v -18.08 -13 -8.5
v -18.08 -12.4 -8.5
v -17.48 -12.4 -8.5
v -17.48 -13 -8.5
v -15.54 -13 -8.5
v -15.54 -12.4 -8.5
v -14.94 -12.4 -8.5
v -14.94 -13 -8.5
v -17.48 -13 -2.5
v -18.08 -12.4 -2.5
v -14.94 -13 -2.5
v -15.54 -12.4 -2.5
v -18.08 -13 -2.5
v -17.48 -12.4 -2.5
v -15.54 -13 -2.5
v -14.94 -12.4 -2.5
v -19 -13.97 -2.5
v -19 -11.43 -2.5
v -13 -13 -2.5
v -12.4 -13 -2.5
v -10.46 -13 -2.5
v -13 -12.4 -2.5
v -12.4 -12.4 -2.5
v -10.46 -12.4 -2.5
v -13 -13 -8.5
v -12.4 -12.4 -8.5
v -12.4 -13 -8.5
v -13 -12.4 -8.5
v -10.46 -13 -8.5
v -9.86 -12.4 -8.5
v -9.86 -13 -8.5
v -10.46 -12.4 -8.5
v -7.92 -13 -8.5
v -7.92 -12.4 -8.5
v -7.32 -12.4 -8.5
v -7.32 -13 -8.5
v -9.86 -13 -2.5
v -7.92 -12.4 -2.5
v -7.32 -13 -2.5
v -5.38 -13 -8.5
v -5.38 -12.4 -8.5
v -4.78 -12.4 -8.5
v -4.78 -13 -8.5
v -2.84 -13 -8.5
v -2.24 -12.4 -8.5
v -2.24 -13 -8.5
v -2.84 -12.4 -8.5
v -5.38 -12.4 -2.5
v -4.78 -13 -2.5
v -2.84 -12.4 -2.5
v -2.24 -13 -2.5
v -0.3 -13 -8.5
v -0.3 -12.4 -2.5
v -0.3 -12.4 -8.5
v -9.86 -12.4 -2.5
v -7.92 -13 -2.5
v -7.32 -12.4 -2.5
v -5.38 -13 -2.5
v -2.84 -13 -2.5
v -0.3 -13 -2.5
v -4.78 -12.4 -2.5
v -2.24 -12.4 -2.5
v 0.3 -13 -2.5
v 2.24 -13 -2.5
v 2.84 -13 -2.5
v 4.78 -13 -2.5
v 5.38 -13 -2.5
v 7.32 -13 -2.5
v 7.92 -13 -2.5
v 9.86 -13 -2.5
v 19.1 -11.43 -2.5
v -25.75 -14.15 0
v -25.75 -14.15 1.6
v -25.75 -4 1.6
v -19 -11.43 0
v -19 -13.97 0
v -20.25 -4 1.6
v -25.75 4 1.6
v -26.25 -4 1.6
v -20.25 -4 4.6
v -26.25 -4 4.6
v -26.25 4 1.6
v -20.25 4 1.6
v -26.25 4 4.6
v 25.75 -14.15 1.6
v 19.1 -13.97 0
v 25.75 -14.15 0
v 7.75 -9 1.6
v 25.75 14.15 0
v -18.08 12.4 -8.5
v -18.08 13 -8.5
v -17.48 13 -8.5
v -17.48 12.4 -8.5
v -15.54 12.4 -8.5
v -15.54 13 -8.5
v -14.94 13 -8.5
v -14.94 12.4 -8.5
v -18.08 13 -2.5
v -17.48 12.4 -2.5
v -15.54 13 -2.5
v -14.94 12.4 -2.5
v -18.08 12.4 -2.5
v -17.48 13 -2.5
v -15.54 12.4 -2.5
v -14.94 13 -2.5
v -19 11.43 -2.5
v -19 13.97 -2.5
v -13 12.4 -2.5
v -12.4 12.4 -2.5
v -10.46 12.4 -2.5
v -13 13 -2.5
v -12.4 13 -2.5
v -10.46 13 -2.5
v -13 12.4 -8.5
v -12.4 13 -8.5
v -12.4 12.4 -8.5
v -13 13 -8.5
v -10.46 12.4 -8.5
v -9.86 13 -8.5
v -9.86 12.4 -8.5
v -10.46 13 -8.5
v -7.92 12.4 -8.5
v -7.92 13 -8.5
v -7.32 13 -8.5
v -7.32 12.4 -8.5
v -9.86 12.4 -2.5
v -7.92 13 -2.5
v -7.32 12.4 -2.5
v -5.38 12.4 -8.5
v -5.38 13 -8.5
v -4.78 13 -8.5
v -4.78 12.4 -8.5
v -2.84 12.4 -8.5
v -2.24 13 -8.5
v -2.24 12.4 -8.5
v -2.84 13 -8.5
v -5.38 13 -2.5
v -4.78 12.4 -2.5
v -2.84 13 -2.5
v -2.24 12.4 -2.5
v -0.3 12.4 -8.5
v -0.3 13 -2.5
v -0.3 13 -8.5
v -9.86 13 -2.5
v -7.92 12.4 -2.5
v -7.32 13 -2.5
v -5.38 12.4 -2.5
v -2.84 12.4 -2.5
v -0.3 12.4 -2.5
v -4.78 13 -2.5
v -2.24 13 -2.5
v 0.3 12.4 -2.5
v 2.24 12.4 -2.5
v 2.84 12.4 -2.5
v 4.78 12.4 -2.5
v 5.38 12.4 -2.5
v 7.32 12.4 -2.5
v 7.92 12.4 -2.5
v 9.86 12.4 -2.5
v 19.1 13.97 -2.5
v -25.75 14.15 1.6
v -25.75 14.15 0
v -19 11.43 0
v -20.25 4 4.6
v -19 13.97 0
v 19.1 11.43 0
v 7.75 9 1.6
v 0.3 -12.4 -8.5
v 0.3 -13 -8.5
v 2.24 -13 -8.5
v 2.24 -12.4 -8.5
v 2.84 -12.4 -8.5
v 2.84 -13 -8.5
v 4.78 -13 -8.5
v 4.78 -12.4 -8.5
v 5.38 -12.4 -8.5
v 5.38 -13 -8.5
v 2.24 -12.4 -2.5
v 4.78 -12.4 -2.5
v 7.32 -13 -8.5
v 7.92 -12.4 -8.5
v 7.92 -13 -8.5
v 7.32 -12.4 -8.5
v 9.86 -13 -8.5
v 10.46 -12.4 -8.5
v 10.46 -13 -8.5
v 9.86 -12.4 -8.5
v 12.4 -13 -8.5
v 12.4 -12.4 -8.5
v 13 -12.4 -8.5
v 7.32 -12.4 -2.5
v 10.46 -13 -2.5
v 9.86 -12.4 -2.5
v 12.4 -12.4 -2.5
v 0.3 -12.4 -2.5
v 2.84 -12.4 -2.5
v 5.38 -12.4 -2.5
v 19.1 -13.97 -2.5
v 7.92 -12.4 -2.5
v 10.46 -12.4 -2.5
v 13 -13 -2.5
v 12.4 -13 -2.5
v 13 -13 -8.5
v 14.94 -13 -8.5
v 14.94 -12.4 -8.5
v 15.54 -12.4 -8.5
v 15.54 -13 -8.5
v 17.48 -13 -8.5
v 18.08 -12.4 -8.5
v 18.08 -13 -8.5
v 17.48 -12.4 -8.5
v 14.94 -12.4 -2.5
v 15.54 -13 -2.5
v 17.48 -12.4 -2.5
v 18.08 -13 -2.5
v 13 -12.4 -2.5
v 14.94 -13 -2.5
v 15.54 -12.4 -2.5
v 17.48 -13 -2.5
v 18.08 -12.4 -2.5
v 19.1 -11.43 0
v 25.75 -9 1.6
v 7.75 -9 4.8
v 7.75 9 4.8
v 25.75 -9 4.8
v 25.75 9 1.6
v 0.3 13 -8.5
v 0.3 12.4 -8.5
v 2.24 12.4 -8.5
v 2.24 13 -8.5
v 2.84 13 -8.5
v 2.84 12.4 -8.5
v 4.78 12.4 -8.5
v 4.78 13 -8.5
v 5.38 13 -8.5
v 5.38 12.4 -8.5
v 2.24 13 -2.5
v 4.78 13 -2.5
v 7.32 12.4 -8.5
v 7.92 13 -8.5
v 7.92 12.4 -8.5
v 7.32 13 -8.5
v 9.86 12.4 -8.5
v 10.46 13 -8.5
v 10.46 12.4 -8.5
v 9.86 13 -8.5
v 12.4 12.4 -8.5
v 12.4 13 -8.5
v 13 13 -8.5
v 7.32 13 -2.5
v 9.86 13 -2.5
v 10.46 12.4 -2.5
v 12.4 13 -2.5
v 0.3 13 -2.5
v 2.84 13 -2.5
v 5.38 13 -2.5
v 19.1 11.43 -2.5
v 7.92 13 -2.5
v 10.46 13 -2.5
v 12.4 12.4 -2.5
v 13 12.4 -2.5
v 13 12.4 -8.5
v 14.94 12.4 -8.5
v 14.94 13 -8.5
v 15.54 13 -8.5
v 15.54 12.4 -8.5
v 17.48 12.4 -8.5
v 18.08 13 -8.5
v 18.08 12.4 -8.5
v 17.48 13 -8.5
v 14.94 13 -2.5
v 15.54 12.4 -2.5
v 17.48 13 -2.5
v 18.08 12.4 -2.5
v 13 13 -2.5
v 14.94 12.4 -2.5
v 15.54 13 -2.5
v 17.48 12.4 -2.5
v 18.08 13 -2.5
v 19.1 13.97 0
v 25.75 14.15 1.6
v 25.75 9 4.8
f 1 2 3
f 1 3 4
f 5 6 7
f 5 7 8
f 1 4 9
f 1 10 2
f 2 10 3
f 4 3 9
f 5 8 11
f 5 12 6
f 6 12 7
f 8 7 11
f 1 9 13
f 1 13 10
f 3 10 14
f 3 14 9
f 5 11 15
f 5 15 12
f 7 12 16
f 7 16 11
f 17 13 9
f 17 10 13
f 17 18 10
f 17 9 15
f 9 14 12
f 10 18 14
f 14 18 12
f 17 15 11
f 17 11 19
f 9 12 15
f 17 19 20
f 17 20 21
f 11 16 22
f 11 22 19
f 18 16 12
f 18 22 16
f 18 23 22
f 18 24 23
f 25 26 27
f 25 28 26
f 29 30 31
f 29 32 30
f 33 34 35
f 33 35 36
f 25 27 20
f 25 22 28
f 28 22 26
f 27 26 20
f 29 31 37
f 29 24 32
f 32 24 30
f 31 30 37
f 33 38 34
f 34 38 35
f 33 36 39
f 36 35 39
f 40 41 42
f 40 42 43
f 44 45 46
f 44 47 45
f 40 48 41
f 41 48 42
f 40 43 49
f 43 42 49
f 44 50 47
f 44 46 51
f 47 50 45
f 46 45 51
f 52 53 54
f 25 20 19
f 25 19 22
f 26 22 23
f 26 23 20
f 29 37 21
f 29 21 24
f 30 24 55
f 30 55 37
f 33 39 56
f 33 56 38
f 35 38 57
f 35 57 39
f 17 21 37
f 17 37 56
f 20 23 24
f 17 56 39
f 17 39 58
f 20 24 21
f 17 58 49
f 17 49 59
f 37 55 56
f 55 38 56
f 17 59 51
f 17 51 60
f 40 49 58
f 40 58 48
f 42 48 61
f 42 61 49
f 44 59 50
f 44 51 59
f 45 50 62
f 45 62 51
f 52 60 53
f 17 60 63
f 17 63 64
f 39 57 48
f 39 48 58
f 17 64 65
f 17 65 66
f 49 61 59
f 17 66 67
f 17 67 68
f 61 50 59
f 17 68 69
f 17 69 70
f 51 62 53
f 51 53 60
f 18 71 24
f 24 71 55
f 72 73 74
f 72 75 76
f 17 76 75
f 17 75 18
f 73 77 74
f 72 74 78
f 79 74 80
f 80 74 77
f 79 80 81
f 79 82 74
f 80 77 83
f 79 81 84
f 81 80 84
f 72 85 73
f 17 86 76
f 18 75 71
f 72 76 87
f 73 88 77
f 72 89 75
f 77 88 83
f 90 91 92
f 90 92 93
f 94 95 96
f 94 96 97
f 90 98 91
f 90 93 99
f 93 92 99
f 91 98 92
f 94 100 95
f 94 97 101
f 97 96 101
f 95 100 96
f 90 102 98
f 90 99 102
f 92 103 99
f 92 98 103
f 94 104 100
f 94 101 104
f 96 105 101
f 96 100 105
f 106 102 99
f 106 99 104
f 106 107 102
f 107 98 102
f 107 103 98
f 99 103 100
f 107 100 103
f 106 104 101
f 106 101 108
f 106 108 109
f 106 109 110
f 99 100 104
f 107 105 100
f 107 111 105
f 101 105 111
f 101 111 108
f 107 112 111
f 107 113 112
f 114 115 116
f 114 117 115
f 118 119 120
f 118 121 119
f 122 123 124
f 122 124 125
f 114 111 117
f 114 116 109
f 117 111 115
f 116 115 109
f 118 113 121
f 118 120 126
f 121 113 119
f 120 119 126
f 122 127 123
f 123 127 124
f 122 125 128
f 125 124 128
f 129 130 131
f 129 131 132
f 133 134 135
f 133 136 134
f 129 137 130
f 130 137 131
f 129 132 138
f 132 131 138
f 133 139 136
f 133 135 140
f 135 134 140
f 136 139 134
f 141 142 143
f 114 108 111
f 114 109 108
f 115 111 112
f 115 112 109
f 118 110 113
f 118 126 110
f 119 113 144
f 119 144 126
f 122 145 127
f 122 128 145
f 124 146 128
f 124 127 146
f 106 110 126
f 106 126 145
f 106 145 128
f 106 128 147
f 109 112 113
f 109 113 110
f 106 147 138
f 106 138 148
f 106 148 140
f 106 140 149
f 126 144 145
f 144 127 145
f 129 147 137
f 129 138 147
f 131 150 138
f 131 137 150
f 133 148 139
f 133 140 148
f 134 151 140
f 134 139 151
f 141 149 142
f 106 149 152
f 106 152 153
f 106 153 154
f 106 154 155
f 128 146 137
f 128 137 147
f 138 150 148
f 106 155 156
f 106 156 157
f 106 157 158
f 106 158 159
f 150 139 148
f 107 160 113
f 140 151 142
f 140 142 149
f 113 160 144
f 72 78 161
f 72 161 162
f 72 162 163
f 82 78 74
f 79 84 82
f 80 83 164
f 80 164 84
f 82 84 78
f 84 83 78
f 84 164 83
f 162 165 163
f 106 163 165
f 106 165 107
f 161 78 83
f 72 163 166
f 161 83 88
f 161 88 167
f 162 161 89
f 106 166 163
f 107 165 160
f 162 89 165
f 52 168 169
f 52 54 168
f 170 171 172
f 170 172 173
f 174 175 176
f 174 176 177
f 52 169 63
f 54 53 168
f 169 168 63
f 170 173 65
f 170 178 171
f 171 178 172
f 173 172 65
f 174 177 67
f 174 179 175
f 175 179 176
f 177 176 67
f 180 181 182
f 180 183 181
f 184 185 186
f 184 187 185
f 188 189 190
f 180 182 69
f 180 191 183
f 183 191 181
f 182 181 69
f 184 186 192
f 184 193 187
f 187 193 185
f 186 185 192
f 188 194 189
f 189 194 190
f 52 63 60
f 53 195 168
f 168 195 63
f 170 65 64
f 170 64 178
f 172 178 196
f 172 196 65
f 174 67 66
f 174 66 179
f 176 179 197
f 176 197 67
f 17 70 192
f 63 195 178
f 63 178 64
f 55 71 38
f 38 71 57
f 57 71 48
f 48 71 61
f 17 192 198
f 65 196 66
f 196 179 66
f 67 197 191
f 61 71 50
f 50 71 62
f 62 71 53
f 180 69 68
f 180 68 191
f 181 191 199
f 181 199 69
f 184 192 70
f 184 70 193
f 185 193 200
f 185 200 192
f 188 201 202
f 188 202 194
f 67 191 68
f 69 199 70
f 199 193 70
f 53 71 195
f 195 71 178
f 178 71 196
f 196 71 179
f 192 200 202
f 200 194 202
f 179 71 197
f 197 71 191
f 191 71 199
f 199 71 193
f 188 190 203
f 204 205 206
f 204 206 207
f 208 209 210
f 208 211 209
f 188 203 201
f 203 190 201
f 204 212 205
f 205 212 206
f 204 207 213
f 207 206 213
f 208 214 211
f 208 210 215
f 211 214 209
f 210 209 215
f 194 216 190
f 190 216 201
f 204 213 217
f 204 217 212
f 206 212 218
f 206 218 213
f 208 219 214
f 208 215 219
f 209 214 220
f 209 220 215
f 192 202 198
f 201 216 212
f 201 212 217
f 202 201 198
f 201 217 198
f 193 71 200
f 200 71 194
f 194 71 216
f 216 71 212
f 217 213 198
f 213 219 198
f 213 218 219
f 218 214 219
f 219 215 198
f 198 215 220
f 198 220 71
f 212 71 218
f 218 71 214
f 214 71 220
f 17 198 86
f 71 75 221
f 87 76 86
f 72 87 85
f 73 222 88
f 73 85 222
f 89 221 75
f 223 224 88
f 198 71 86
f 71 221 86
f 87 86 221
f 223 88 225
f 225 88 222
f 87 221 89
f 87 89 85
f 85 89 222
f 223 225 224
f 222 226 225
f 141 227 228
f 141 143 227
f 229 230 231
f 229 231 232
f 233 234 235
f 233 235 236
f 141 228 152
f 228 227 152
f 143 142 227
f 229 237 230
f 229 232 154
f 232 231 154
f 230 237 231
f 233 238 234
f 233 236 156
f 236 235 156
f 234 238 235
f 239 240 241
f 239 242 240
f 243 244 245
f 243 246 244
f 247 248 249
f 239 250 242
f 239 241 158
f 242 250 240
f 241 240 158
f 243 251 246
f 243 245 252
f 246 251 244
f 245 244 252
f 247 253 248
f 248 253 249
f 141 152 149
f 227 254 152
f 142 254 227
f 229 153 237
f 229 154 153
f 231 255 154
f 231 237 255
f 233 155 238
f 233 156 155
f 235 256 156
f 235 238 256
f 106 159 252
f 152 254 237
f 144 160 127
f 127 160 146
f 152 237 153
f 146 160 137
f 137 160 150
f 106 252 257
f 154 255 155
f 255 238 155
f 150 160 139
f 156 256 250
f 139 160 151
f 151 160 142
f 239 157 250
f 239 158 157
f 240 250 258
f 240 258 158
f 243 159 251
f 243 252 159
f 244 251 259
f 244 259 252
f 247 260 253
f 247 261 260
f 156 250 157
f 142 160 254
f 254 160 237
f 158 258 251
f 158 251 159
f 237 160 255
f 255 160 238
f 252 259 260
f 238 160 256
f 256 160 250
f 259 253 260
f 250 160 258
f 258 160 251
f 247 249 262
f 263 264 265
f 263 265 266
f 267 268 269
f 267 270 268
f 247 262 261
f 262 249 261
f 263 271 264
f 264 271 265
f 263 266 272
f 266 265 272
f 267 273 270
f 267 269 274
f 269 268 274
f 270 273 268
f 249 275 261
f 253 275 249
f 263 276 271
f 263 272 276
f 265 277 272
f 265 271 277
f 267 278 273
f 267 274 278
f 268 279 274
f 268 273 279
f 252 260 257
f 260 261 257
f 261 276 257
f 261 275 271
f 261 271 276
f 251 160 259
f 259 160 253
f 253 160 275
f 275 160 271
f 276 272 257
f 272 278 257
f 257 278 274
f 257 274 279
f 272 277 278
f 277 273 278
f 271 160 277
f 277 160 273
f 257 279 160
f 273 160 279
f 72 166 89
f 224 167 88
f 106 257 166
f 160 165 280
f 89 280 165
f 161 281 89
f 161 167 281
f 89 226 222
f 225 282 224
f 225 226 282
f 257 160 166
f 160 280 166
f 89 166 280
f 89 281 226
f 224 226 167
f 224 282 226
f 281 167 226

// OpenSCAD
// file: ../lib/lib.scad
// Shared helpers. Include AFTER params.scad (needs TOL, M3_* etc.).
$fa = 4; $fs = 0.5;

module rrect(size, r) {            // 2D rounded rectangle, centred
    r2 = min(r, min(size[0], size[1]) / 2 - 0.001);
    offset(r = r2) square([size[0] - 2 * r2, size[1] - 2 * r2], center = true);
}
module rbox(size, r, center_xy = true) {   // box with rounded vertical edges
    translate(center_xy ? [0, 0, 0] : [size[0] / 2, size[1] / 2, 0])
        linear_extrude(size[2]) rrect([size[0], size[1]], r);
}
module rbox_at(x0, x1, y0, y1, z0, z1, r = 0.01) {
    translate([(x0 + x1) / 2, (y0 + y1) / 2, z0]) rbox([x1 - x0, y1 - y0, z1 - z0], r);
}
module box_at(x0, x1, y0, y1, z0, z1) { translate([x0, y0, z0]) cube([x1 - x0, y1 - y0, z1 - z0]); }

module ring(ro, ri, h) { difference() { cylinder(r = ro, h = h); translate([0, 0, -1]) cylinder(r = ri, h = h + 2); } }
module ring_sector(ro, ri, h, a0, a1) {
    intersection() {
        ring(ro, ri, h);
        linear_extrude(h) polygon(concat([[0, 0]], [for (a = [a0 : (a1 - a0) / 24 : a1]) 2 * ro * [cos(a), sin(a)]]));
    }
}
// teardrop hole along an axis lying horizontal (axis = Y after rotation), printable w/o support
module teardrop2d(d) { union() { circle(d = d); rotate(45) square(d / 2); } }
// vertical heat-set insert hole, opening at z=0 going +z (depth l)
module insert_hole(l = M3_INSERT_L) { translate([0, 0, -EPS]) cylinder(d = M3_INSERT_D, h = l + EPS); }
module m3_clear(l) { translate([0, 0, -EPS]) cylinder(d = M3_CLEAR, h = l + 2 * EPS); }
module m3_csk(l) {  // countersunk clearance from z=0 upward, head at z=0 side
    translate([0, 0, -EPS]) { cylinder(d = M3_CLEAR, h = l + 2 * EPS); cylinder(d1 = 6.4, d2 = M3_CLEAR, h = 1.7); }
}
module card2d() { rrect([CARD_L, CARD_W], CARD_R); }
module card_at(cy, z) { translate([0, cy, z]) linear_extrude(CARD_T) card2d(); }

// ---- gears ----
function _inv(a) = tan(a) - a * PI_ / 180;           // involute function, a in deg
function _invpt(rb, r, ang0, s) = let(al = acos(rb / r), th = ang0 - s * (_inv(al) * 180 / PI_)) [r * cos(th), r * sin(th)];
module involute_gear2d(m, z, pa = 20, clearance = 0.05) {
    rp = m * z / 2; rb = rp * cos(pa); ra = rp + m - clearance; rf = rp - 1.25 * m;
    half = 90 / z + _inv(pa) * 180 / PI_;            // tooth half-angle at base (deg)
    n = 8;
    rs = [for (i = [0 : n]) max(rb, rf) + (ra - max(rb, rf)) * i / n];
    union() {
        circle(r = rf, $fn = z * 4);
        for (k = [0 : z - 1]) rotate(k * 360 / z) polygon(concat(
            [[rf * cos(-half), rf * sin(-half)]],
            [for (r = rs) let(p = _invpt(rb, r, half, 1)) [p[0], -p[1]]],
            [for (i = [n : -1 : 0]) _invpt(rb, rs[i], half, 1)],
            [[rf * cos(half), rf * sin(half)]]));
    }
}
// straight gear rack (2D in XY: teeth along +x, pointing -y, pitch line at y=0)
module gear_rack2d(m, len, back = 3) {
    p = PI_ * m; ad = m; de = 1.25 * m; t = tan(20);
    n = ceil(len / p) + 1;
    intersection() {
        union() {
            translate([0, de]) square([len, back]);
            for (i = [0 : n]) translate([i * p - p / 4, 0]) polygon([
                [-(p / 4 + de * t), de + 0.01], [p / 4 + de * t + 0.01, de + 0.01],
                [p / 4 - ad * t, -ad], [-(p / 4 - ad * t), -ad] ]);
        }
        translate([0, -ad - 1]) square([len, ad + de + back + 2]);
    }
}
// GT2 belt-tooth profile ring (teeth outward), 2D
module gt2_ring2d(n, r_land, ri) {
    union() {
        difference() { circle(r = r_land + 0.01, $fn = n * 2); circle(r = ri, $fn = n * 2); }
        for (k = [0 : n - 1]) rotate(k * 360 / n)
            translate([r_land, 0]) hull() { translate([-0.2, 0]) square([0.2, 1.0], center = true); translate([0.25, 0]) circle(r = 0.5, $fn = 12); }
    }
}
// main file
// Vendor model: ESP32 DevKit V1 (WROOM-32, 30 pin), headers down. Local: PCB bottom z=0, centred, long side X.
include <../params.scad>
include <../lib/lib.scad>
module vendor_esp32_devkit() {
    color([0.1,0.1,0.12]) translate([-25.75, -14.15, 0]) cube([51.5, 28.3, 1.6]);
    color([0.6,0.6,0.62]) translate([25.75 - 18, -9, 1.6]) cube([18, 18, 3.2]);
    color([0.75,0.75,0.75]) translate([-25.75 - 0.5, -4, 1.6]) cube([6, 8, 3]);
    color([0.08,0.08,0.08]) for (y = [-1, 1]) translate([-19, y * 12.7 - 1.27, -2.5]) cube([38.1, 2.54, 2.5]);
    color([0.85,0.7,0.2]) for (y = [-1, 1], i = [0 : 14]) translate([-17.78 + i * 2.54 - 0.3, y * 12.7 - 0.3, -8.5]) cube([0.6, 0.6, 6]);
}

vendor_esp32_devkit();
